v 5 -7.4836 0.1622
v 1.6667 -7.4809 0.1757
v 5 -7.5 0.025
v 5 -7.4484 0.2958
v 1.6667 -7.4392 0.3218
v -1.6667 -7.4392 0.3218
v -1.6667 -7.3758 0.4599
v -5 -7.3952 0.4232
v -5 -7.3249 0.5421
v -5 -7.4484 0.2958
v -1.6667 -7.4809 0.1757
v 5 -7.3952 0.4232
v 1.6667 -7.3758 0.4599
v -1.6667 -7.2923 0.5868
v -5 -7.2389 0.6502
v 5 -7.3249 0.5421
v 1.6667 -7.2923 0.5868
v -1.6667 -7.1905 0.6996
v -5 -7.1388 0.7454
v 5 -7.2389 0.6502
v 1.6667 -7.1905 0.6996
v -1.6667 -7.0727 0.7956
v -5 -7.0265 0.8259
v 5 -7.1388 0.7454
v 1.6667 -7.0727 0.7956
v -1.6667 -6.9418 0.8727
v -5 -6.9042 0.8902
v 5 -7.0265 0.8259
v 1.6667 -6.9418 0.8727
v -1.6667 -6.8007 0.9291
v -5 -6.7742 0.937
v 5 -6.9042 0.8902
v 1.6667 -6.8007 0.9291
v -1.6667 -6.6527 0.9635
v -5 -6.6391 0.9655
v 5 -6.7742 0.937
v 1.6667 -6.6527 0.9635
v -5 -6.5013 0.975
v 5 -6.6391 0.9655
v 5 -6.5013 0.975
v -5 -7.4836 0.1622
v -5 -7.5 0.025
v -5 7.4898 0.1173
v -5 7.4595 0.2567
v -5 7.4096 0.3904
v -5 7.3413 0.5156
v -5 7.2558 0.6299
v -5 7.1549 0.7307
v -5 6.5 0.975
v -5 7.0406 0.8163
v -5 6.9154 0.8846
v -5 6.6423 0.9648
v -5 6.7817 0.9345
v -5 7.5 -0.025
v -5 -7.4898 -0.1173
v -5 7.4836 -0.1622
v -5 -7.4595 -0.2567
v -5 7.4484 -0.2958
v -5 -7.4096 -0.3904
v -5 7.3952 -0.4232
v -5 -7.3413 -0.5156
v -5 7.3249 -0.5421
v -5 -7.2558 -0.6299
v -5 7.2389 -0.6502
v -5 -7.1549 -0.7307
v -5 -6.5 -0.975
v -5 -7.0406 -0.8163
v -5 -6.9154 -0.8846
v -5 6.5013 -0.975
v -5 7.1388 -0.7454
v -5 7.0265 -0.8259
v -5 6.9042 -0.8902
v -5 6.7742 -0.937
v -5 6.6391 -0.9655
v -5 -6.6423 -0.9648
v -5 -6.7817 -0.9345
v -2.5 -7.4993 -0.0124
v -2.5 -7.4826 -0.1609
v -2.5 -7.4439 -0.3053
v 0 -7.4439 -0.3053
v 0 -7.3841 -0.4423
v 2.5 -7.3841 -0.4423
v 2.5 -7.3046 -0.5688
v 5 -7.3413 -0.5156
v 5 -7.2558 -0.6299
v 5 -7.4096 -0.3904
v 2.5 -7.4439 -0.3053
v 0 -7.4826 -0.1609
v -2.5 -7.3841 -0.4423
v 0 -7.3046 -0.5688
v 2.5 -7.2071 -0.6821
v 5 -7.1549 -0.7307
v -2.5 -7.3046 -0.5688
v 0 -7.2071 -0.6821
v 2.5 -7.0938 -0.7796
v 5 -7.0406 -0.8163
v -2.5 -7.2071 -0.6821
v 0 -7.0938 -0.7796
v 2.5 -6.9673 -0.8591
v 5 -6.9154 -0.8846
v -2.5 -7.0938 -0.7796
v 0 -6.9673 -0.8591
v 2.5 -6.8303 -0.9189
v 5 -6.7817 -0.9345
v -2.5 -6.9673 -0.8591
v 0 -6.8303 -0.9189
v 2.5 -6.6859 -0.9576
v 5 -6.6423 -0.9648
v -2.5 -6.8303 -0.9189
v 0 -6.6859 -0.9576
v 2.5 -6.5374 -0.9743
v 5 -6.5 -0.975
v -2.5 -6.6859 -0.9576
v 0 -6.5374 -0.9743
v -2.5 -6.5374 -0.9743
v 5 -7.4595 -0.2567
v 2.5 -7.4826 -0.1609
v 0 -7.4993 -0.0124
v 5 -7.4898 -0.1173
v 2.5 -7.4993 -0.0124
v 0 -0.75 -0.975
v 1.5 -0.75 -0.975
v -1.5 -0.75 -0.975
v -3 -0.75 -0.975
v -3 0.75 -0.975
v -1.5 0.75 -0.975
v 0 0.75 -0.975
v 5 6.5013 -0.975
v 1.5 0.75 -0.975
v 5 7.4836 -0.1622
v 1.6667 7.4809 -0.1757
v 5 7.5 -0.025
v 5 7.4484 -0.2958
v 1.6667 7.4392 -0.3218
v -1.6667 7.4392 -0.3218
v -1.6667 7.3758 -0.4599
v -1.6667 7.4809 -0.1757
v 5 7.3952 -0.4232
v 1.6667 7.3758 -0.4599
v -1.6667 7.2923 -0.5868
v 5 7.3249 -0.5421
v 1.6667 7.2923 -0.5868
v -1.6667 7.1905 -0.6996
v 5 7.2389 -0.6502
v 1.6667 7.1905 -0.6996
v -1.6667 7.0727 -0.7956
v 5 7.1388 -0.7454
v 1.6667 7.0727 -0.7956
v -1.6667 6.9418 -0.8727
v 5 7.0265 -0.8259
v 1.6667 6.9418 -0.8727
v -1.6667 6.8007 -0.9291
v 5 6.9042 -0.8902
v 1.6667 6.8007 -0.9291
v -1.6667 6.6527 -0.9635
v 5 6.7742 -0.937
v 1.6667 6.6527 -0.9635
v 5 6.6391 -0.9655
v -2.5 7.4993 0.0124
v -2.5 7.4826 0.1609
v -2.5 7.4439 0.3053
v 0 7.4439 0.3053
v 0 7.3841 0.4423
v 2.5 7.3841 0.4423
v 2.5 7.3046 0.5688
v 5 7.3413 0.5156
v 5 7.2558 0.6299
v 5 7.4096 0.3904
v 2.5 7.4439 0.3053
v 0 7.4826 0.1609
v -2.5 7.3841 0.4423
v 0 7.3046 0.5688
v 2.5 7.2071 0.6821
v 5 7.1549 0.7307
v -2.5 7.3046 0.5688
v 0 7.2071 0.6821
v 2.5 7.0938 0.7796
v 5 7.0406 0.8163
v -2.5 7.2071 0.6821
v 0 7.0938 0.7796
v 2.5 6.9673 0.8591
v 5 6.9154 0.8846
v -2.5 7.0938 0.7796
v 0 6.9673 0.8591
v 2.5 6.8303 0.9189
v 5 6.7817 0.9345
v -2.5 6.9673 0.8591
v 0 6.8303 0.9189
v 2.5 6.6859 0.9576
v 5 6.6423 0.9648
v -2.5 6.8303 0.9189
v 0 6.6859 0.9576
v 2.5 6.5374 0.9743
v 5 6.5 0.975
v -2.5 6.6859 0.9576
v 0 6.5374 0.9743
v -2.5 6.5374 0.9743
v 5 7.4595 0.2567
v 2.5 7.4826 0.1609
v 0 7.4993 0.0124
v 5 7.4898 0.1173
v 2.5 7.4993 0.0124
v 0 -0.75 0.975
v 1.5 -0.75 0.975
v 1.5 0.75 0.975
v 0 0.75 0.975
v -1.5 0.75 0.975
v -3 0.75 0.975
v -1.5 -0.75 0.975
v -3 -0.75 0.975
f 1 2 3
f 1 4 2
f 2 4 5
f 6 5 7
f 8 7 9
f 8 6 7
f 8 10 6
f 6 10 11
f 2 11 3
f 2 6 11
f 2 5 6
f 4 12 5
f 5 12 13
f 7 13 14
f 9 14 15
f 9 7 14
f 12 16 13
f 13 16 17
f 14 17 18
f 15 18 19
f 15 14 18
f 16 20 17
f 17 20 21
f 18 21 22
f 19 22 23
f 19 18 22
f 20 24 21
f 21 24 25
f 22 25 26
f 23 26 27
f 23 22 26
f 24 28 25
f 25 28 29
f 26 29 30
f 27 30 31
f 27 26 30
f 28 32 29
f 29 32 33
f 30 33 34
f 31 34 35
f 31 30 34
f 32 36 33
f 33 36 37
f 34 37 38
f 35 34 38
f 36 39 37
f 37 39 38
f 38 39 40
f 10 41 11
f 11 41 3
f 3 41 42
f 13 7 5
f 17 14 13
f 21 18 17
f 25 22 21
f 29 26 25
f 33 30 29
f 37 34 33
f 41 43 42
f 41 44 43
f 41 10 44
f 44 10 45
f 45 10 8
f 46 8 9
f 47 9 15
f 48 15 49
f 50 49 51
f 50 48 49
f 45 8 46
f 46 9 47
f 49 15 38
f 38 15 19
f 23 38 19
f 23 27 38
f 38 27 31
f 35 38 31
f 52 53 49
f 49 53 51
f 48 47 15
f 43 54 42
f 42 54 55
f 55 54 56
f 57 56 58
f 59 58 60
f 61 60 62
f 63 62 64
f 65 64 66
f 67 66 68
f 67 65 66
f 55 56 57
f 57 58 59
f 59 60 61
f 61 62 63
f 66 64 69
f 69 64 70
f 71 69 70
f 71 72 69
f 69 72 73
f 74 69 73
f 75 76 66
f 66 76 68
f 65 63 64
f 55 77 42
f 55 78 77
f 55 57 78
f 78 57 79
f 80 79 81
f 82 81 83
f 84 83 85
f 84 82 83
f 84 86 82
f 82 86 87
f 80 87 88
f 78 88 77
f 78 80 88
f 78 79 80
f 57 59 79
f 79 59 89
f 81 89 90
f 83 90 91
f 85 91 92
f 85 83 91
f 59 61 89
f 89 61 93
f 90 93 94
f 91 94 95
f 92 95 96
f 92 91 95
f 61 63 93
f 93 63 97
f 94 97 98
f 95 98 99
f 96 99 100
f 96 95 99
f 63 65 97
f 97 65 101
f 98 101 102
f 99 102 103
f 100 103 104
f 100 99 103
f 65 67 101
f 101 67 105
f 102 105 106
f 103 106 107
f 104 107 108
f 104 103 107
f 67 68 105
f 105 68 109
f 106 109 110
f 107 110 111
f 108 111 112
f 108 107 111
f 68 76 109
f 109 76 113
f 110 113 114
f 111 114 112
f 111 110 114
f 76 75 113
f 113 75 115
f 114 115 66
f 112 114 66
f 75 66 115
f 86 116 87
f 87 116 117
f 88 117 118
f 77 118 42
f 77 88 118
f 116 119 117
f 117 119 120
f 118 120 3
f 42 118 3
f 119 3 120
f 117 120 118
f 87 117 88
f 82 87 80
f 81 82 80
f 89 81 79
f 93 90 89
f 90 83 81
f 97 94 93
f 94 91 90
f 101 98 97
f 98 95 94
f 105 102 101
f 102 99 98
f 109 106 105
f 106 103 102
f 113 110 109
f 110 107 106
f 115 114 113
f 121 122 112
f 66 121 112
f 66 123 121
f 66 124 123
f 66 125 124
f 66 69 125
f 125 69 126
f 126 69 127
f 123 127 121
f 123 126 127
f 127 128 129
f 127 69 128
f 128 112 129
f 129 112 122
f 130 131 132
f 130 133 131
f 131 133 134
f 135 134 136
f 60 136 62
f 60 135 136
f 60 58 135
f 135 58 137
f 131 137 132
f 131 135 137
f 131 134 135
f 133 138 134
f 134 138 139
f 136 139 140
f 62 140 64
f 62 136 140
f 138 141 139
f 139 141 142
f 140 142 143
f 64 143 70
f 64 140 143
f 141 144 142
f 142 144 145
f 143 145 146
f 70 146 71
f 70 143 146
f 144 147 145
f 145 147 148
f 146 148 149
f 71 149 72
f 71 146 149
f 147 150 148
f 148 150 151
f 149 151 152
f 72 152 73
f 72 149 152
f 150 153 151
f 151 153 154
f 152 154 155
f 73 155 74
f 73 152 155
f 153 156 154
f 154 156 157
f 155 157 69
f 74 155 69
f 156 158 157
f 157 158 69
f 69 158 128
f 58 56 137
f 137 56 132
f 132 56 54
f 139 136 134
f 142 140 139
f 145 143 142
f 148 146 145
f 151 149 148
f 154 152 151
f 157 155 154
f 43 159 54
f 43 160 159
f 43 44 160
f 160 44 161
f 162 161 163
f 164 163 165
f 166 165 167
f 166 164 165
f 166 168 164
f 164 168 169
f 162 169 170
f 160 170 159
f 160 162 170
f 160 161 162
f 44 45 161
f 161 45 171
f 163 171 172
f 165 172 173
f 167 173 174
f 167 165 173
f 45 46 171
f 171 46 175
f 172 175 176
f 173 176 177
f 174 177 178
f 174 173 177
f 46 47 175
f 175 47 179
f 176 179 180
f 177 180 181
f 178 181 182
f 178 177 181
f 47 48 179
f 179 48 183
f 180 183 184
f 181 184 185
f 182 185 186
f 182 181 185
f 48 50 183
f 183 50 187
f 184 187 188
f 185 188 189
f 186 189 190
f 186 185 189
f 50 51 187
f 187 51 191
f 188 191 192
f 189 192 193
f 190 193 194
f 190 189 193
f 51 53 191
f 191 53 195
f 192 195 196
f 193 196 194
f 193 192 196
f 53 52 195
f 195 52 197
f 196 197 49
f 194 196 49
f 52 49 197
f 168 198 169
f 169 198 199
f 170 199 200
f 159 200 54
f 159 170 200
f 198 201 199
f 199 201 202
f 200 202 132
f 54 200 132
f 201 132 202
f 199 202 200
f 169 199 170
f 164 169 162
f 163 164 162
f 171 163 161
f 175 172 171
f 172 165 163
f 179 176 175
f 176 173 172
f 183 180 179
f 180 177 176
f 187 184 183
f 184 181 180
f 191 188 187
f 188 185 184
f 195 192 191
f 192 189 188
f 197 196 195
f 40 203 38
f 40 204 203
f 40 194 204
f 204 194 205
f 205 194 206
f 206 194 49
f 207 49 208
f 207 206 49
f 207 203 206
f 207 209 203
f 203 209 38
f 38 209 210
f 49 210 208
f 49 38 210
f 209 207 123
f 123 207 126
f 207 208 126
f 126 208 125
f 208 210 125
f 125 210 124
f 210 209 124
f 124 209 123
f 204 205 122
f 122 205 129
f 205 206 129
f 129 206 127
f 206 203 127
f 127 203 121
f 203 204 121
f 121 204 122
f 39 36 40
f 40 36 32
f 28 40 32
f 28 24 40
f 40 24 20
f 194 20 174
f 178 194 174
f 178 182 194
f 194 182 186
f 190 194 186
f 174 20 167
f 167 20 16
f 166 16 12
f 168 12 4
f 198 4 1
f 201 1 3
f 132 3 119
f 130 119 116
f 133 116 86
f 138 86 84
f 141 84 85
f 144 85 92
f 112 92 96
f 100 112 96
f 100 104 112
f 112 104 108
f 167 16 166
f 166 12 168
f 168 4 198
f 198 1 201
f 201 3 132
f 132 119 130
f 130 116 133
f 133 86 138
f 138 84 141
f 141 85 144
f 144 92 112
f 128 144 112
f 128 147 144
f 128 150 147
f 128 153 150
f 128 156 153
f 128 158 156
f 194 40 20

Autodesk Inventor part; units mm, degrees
sketch "Skizze1" plane through (0, 0, 0) normal (0, 0, 1) x (1, 0, 0)
  line L0 (-5, 7.5) -> (5, 7.5)
  line L1 (5, 7.5) -> (5, -7.5)
  line L2 (5, -7.5) -> (-5, -7.5)
  line L3 (-5, -7.5) -> (-5, 7.5)
  line L4 (-7, 0) -> (7, 0) projected
  line L5 (0, 10.5) -> (0, -10.5) projected
  point P0 (0, 0)
  dimension "d0" = 10
  dimension "d1" = 15
extrude "Extrusion1" add sketch "Skizze1" along normal mid plane 1.95
sketch "Skizze2" plane through (0, 0, 0.975) normal (0, 0, 1) x (1, 0, 0)
  line L0 (-5, 7.5) -> (-5, -7.5) projected
  line L1 (-3, -0.75) -> (-1.5, -0.75)
  line L2 (-1.5, -0.75) -> (-1.5, 0.75)
  line L3 (-1.5, 0.75) -> (-3, 0.75)
  line L4 (-3, 0.75) -> (-3, -0.75)
  line L5 (0, -0.75) -> (1.5, -0.75)
  line L6 (1.5, -0.75) -> (1.5, 0.75)
  line L7 (1.5, 0.75) -> (0, 0.75)
  line L8 (0, 0.75) -> (0, -0.75)
  line L9 (-7, 0) -> (7, 0) projected
  point P0 (0, 0)
  dimension "d4" = 1.5
  dimension "d5" = 2
  dimension "d6" = 1.5
  dimension "d7" = 1.5
  dimension "d8" = 1.5
extrude "Extrusion2" cut sketch "Skizze2" against normal blind 1.95
fillet "Rundung1" radius 1 4 edges at (0, 7.5, 0.975) (0, 7.5, -0.975) (0, -7.5, -0.975) (0, -7.5, 0.975)
properties part number "ChassisRechtsUntenKlappeSchluessel"
